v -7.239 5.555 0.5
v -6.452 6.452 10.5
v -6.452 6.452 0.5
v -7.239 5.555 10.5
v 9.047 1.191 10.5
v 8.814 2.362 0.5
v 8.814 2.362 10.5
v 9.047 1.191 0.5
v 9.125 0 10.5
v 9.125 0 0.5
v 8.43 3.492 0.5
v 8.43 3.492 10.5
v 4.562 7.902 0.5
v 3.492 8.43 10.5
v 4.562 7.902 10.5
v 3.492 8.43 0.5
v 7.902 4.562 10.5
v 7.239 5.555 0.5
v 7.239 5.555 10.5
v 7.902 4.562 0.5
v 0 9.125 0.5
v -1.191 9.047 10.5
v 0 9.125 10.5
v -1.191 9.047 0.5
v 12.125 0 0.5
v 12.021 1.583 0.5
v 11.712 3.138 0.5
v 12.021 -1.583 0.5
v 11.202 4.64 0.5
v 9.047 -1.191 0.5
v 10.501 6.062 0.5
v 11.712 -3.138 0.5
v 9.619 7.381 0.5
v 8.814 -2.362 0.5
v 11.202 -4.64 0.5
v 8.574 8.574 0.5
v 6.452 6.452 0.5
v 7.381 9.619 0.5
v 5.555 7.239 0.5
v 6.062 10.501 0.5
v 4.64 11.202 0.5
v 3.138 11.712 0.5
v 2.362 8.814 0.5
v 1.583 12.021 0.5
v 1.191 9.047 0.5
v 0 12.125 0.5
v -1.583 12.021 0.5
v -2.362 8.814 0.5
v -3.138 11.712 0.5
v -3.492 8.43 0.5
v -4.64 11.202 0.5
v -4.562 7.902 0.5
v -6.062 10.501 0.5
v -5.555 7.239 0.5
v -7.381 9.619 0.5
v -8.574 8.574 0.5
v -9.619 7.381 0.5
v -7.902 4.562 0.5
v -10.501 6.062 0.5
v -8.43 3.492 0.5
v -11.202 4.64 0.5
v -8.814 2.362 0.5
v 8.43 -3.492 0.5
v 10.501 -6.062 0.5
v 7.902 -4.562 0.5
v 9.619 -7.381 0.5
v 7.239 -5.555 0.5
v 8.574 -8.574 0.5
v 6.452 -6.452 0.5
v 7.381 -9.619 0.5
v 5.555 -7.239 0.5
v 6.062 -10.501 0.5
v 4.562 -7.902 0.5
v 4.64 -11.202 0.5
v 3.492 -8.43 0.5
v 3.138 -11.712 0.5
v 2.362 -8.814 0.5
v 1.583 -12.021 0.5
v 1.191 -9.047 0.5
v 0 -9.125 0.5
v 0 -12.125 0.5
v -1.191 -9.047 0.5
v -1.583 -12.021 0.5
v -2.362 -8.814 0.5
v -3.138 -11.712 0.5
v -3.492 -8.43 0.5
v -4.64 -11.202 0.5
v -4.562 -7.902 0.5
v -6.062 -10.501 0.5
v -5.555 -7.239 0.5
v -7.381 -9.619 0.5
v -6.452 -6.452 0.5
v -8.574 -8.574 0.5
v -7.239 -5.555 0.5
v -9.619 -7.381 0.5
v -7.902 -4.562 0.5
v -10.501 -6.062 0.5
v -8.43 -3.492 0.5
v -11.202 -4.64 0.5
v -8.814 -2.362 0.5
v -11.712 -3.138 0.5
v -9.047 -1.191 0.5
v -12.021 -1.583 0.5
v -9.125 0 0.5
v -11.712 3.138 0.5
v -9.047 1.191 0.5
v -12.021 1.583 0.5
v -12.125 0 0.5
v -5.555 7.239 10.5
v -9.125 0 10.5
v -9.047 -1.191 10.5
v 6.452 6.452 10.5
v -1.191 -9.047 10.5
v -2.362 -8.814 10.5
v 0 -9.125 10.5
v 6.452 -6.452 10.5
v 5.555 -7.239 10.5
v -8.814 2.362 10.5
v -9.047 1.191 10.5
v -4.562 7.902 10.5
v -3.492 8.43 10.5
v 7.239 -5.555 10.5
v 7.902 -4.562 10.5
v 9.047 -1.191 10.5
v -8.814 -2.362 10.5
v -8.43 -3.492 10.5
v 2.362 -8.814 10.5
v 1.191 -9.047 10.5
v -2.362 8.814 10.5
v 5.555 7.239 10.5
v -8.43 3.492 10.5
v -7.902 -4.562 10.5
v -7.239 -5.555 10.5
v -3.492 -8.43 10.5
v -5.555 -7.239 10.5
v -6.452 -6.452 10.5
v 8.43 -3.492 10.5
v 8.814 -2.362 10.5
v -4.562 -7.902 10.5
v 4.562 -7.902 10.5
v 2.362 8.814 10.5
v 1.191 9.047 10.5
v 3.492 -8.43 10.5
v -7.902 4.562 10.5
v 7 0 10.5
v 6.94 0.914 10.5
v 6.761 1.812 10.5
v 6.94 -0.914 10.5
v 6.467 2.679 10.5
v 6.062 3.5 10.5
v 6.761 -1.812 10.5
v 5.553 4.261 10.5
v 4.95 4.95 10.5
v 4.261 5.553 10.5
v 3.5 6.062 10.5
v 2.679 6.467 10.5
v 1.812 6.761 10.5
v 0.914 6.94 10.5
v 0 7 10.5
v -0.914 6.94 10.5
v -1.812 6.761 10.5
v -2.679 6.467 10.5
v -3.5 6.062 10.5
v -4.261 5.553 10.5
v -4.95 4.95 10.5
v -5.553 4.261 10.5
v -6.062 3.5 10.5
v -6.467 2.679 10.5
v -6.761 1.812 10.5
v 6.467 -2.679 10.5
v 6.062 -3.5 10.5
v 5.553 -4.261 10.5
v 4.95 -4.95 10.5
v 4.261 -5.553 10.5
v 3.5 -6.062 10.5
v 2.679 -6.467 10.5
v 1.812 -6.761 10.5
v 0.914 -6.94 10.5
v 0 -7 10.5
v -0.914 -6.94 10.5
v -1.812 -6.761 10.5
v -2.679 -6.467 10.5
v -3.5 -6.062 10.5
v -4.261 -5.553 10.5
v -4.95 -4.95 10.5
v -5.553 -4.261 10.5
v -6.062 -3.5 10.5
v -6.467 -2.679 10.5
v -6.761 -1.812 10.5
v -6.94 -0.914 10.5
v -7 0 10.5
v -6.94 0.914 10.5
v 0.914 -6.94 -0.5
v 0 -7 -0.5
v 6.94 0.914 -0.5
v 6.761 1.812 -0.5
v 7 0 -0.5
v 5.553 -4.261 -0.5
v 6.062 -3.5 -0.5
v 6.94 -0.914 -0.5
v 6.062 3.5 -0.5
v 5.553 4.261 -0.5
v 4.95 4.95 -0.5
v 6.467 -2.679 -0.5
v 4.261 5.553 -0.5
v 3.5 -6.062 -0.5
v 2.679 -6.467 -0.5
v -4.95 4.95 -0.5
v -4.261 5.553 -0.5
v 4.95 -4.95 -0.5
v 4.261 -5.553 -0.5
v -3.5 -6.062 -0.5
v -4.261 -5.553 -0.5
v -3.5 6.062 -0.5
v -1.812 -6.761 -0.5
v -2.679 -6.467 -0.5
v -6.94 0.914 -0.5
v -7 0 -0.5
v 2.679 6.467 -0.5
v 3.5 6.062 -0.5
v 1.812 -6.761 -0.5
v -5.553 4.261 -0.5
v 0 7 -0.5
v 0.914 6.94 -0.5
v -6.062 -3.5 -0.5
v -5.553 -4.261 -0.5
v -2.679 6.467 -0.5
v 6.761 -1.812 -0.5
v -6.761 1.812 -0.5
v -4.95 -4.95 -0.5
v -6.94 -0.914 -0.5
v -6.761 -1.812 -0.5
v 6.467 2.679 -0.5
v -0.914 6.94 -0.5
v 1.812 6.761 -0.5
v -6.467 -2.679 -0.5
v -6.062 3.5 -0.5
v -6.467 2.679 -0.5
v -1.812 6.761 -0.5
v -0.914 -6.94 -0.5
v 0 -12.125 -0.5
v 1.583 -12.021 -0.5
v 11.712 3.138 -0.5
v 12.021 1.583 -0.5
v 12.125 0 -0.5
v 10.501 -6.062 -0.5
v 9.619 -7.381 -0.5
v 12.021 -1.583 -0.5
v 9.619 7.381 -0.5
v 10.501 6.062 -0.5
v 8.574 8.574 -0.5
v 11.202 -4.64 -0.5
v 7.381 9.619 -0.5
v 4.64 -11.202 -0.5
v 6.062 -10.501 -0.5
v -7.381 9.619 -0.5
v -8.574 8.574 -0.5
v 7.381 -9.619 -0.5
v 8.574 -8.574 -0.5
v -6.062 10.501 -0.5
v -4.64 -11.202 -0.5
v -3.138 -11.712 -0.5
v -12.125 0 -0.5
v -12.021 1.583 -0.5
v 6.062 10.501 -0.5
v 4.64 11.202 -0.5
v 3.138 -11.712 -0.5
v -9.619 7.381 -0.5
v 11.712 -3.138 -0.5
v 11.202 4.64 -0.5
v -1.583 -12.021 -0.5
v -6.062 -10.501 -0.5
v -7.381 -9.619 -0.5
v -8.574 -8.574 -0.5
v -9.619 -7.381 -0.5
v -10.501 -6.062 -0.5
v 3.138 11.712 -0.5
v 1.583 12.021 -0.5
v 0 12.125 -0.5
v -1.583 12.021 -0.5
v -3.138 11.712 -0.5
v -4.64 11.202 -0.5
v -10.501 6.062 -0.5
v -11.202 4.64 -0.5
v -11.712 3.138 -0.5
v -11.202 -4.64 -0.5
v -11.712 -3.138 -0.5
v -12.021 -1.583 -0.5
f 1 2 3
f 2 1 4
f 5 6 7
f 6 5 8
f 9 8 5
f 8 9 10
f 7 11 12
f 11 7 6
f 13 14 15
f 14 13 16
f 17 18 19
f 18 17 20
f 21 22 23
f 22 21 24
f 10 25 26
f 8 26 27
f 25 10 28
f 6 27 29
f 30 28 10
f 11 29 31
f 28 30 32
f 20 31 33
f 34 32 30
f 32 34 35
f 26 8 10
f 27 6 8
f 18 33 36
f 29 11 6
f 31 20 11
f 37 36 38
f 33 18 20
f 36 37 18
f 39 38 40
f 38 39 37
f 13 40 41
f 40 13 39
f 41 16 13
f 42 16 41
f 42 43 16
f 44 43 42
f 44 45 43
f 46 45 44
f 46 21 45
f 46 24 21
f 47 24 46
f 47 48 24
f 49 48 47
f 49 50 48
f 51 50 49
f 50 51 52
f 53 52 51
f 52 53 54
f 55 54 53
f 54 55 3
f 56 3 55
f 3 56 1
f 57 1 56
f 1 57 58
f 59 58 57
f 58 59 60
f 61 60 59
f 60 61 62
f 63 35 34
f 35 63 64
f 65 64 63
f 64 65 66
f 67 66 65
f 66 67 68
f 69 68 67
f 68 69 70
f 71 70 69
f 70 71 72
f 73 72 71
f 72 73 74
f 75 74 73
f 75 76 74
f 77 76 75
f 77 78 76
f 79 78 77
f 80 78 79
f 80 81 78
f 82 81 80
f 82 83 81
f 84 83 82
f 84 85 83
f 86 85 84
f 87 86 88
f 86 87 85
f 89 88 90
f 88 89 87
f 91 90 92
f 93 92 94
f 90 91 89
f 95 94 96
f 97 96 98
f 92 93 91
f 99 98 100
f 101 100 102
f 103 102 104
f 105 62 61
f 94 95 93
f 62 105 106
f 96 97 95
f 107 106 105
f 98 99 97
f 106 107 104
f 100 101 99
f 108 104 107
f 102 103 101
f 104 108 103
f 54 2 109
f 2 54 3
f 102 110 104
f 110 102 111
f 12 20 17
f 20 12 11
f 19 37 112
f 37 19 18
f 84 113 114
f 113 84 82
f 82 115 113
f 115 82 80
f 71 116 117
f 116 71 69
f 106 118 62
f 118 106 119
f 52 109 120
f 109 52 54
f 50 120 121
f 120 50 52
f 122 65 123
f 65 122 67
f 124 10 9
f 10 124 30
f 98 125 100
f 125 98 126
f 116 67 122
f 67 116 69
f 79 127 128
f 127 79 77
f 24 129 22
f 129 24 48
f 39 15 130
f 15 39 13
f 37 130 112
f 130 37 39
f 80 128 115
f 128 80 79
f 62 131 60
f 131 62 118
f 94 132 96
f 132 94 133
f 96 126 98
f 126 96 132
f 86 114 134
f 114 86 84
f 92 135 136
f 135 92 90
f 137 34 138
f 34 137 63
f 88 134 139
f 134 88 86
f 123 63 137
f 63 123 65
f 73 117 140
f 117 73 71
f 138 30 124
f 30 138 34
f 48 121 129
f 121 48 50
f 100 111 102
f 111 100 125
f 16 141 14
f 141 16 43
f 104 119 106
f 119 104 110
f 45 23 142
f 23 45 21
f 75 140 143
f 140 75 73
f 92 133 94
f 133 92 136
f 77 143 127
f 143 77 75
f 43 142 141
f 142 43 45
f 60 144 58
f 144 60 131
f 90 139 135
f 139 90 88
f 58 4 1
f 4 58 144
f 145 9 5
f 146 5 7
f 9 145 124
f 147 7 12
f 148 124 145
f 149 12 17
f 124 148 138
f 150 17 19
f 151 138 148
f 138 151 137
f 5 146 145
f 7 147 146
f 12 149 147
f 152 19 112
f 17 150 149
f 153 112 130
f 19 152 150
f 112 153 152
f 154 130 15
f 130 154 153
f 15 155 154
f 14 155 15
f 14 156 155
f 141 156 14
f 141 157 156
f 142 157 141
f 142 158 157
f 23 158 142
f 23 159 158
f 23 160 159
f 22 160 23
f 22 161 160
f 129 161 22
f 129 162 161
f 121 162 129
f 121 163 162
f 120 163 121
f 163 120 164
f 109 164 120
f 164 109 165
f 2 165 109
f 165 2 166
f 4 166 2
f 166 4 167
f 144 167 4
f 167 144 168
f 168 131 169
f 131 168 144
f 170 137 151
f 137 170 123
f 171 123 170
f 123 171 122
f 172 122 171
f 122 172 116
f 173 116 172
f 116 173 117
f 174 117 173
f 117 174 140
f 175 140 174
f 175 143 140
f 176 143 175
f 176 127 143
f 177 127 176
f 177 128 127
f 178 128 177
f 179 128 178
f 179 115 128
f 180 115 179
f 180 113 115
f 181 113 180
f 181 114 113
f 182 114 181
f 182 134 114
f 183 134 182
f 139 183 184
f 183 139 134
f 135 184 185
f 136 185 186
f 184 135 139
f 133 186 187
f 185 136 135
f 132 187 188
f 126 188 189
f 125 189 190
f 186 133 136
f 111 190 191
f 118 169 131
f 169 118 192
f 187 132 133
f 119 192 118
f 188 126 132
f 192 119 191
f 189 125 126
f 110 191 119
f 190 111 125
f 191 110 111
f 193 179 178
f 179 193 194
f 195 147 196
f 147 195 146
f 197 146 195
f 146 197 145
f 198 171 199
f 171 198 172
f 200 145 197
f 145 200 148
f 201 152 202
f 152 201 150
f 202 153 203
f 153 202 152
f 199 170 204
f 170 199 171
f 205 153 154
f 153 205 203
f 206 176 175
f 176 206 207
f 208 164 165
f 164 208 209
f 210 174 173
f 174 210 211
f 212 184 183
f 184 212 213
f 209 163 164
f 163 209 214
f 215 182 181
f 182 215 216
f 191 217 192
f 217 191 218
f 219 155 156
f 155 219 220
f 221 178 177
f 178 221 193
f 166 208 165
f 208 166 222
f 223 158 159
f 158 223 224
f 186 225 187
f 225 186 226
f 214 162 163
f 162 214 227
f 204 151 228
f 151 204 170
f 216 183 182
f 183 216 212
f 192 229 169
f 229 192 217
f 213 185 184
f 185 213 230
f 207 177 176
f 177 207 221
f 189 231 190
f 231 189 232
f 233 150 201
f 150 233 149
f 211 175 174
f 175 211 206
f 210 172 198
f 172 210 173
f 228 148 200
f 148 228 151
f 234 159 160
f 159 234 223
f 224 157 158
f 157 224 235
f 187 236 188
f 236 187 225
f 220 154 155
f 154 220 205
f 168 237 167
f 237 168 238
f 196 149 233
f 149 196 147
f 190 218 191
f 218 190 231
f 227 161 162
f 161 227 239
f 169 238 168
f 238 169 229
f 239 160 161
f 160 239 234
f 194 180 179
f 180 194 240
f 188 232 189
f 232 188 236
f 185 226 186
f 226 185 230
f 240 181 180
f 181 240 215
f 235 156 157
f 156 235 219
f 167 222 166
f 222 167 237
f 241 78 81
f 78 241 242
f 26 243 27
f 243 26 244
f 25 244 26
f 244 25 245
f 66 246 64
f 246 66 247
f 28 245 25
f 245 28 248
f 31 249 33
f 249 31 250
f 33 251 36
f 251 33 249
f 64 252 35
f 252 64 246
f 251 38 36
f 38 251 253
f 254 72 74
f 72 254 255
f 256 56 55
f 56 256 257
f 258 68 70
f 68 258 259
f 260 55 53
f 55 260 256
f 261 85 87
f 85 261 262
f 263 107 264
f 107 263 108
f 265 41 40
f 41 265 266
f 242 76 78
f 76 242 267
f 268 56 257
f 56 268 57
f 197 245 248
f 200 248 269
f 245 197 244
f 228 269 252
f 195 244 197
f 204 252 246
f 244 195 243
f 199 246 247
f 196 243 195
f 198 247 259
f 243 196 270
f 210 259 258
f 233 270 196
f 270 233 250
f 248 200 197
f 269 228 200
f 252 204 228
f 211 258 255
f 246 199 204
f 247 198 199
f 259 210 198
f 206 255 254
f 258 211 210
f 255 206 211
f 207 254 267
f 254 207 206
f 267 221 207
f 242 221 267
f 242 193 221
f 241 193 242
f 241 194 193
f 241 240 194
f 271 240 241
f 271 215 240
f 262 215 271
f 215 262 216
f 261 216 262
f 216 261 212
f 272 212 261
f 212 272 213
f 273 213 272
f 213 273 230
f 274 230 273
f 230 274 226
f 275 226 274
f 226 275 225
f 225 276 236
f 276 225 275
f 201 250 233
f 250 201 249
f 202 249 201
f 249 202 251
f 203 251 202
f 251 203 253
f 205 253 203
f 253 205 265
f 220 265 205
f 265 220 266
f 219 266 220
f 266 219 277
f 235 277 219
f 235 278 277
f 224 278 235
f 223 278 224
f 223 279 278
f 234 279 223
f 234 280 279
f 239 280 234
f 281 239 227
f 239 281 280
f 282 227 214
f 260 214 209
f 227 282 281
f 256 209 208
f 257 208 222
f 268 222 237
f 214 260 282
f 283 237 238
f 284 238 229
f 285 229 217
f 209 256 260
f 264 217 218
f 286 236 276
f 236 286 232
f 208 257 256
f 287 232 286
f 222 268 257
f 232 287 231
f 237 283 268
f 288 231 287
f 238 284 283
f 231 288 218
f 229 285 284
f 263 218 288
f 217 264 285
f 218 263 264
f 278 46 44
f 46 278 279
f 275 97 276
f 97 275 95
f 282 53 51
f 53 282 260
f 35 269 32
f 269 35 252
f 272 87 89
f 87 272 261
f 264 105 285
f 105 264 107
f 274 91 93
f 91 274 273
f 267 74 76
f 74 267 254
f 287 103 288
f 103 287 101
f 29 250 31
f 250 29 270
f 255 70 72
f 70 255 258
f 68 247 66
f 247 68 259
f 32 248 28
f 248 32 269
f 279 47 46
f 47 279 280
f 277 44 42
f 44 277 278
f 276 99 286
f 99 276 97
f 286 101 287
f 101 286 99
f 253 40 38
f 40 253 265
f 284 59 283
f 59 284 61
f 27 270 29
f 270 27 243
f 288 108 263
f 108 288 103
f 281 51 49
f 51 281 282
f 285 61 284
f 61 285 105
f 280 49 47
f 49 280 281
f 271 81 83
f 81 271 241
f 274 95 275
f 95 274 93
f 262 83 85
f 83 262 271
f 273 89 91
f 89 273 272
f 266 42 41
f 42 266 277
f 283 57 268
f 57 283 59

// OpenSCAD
adapter_diameter=18.25;
syringe_diameter=14;
height=10;
offset_width=3;
offset_height=1; 

$fn=48;

module inner()
{
	cylinder(center=true, h=height, d=syringe_diameter);
}

module offset()
{
	difference() {
		cylinder(center=true, h=offset_height, d=offset_width*2+adapter_diameter);
		inner();
	}
}

module adapter_5cc()
{
	difference() {
		cylinder(center=true, h=height, d=adapter_diameter);
		inner();
	}
}

module main() {
	translate([0,0,height/2+offset_height/2]) adapter_5cc();
	offset();
}

main();
